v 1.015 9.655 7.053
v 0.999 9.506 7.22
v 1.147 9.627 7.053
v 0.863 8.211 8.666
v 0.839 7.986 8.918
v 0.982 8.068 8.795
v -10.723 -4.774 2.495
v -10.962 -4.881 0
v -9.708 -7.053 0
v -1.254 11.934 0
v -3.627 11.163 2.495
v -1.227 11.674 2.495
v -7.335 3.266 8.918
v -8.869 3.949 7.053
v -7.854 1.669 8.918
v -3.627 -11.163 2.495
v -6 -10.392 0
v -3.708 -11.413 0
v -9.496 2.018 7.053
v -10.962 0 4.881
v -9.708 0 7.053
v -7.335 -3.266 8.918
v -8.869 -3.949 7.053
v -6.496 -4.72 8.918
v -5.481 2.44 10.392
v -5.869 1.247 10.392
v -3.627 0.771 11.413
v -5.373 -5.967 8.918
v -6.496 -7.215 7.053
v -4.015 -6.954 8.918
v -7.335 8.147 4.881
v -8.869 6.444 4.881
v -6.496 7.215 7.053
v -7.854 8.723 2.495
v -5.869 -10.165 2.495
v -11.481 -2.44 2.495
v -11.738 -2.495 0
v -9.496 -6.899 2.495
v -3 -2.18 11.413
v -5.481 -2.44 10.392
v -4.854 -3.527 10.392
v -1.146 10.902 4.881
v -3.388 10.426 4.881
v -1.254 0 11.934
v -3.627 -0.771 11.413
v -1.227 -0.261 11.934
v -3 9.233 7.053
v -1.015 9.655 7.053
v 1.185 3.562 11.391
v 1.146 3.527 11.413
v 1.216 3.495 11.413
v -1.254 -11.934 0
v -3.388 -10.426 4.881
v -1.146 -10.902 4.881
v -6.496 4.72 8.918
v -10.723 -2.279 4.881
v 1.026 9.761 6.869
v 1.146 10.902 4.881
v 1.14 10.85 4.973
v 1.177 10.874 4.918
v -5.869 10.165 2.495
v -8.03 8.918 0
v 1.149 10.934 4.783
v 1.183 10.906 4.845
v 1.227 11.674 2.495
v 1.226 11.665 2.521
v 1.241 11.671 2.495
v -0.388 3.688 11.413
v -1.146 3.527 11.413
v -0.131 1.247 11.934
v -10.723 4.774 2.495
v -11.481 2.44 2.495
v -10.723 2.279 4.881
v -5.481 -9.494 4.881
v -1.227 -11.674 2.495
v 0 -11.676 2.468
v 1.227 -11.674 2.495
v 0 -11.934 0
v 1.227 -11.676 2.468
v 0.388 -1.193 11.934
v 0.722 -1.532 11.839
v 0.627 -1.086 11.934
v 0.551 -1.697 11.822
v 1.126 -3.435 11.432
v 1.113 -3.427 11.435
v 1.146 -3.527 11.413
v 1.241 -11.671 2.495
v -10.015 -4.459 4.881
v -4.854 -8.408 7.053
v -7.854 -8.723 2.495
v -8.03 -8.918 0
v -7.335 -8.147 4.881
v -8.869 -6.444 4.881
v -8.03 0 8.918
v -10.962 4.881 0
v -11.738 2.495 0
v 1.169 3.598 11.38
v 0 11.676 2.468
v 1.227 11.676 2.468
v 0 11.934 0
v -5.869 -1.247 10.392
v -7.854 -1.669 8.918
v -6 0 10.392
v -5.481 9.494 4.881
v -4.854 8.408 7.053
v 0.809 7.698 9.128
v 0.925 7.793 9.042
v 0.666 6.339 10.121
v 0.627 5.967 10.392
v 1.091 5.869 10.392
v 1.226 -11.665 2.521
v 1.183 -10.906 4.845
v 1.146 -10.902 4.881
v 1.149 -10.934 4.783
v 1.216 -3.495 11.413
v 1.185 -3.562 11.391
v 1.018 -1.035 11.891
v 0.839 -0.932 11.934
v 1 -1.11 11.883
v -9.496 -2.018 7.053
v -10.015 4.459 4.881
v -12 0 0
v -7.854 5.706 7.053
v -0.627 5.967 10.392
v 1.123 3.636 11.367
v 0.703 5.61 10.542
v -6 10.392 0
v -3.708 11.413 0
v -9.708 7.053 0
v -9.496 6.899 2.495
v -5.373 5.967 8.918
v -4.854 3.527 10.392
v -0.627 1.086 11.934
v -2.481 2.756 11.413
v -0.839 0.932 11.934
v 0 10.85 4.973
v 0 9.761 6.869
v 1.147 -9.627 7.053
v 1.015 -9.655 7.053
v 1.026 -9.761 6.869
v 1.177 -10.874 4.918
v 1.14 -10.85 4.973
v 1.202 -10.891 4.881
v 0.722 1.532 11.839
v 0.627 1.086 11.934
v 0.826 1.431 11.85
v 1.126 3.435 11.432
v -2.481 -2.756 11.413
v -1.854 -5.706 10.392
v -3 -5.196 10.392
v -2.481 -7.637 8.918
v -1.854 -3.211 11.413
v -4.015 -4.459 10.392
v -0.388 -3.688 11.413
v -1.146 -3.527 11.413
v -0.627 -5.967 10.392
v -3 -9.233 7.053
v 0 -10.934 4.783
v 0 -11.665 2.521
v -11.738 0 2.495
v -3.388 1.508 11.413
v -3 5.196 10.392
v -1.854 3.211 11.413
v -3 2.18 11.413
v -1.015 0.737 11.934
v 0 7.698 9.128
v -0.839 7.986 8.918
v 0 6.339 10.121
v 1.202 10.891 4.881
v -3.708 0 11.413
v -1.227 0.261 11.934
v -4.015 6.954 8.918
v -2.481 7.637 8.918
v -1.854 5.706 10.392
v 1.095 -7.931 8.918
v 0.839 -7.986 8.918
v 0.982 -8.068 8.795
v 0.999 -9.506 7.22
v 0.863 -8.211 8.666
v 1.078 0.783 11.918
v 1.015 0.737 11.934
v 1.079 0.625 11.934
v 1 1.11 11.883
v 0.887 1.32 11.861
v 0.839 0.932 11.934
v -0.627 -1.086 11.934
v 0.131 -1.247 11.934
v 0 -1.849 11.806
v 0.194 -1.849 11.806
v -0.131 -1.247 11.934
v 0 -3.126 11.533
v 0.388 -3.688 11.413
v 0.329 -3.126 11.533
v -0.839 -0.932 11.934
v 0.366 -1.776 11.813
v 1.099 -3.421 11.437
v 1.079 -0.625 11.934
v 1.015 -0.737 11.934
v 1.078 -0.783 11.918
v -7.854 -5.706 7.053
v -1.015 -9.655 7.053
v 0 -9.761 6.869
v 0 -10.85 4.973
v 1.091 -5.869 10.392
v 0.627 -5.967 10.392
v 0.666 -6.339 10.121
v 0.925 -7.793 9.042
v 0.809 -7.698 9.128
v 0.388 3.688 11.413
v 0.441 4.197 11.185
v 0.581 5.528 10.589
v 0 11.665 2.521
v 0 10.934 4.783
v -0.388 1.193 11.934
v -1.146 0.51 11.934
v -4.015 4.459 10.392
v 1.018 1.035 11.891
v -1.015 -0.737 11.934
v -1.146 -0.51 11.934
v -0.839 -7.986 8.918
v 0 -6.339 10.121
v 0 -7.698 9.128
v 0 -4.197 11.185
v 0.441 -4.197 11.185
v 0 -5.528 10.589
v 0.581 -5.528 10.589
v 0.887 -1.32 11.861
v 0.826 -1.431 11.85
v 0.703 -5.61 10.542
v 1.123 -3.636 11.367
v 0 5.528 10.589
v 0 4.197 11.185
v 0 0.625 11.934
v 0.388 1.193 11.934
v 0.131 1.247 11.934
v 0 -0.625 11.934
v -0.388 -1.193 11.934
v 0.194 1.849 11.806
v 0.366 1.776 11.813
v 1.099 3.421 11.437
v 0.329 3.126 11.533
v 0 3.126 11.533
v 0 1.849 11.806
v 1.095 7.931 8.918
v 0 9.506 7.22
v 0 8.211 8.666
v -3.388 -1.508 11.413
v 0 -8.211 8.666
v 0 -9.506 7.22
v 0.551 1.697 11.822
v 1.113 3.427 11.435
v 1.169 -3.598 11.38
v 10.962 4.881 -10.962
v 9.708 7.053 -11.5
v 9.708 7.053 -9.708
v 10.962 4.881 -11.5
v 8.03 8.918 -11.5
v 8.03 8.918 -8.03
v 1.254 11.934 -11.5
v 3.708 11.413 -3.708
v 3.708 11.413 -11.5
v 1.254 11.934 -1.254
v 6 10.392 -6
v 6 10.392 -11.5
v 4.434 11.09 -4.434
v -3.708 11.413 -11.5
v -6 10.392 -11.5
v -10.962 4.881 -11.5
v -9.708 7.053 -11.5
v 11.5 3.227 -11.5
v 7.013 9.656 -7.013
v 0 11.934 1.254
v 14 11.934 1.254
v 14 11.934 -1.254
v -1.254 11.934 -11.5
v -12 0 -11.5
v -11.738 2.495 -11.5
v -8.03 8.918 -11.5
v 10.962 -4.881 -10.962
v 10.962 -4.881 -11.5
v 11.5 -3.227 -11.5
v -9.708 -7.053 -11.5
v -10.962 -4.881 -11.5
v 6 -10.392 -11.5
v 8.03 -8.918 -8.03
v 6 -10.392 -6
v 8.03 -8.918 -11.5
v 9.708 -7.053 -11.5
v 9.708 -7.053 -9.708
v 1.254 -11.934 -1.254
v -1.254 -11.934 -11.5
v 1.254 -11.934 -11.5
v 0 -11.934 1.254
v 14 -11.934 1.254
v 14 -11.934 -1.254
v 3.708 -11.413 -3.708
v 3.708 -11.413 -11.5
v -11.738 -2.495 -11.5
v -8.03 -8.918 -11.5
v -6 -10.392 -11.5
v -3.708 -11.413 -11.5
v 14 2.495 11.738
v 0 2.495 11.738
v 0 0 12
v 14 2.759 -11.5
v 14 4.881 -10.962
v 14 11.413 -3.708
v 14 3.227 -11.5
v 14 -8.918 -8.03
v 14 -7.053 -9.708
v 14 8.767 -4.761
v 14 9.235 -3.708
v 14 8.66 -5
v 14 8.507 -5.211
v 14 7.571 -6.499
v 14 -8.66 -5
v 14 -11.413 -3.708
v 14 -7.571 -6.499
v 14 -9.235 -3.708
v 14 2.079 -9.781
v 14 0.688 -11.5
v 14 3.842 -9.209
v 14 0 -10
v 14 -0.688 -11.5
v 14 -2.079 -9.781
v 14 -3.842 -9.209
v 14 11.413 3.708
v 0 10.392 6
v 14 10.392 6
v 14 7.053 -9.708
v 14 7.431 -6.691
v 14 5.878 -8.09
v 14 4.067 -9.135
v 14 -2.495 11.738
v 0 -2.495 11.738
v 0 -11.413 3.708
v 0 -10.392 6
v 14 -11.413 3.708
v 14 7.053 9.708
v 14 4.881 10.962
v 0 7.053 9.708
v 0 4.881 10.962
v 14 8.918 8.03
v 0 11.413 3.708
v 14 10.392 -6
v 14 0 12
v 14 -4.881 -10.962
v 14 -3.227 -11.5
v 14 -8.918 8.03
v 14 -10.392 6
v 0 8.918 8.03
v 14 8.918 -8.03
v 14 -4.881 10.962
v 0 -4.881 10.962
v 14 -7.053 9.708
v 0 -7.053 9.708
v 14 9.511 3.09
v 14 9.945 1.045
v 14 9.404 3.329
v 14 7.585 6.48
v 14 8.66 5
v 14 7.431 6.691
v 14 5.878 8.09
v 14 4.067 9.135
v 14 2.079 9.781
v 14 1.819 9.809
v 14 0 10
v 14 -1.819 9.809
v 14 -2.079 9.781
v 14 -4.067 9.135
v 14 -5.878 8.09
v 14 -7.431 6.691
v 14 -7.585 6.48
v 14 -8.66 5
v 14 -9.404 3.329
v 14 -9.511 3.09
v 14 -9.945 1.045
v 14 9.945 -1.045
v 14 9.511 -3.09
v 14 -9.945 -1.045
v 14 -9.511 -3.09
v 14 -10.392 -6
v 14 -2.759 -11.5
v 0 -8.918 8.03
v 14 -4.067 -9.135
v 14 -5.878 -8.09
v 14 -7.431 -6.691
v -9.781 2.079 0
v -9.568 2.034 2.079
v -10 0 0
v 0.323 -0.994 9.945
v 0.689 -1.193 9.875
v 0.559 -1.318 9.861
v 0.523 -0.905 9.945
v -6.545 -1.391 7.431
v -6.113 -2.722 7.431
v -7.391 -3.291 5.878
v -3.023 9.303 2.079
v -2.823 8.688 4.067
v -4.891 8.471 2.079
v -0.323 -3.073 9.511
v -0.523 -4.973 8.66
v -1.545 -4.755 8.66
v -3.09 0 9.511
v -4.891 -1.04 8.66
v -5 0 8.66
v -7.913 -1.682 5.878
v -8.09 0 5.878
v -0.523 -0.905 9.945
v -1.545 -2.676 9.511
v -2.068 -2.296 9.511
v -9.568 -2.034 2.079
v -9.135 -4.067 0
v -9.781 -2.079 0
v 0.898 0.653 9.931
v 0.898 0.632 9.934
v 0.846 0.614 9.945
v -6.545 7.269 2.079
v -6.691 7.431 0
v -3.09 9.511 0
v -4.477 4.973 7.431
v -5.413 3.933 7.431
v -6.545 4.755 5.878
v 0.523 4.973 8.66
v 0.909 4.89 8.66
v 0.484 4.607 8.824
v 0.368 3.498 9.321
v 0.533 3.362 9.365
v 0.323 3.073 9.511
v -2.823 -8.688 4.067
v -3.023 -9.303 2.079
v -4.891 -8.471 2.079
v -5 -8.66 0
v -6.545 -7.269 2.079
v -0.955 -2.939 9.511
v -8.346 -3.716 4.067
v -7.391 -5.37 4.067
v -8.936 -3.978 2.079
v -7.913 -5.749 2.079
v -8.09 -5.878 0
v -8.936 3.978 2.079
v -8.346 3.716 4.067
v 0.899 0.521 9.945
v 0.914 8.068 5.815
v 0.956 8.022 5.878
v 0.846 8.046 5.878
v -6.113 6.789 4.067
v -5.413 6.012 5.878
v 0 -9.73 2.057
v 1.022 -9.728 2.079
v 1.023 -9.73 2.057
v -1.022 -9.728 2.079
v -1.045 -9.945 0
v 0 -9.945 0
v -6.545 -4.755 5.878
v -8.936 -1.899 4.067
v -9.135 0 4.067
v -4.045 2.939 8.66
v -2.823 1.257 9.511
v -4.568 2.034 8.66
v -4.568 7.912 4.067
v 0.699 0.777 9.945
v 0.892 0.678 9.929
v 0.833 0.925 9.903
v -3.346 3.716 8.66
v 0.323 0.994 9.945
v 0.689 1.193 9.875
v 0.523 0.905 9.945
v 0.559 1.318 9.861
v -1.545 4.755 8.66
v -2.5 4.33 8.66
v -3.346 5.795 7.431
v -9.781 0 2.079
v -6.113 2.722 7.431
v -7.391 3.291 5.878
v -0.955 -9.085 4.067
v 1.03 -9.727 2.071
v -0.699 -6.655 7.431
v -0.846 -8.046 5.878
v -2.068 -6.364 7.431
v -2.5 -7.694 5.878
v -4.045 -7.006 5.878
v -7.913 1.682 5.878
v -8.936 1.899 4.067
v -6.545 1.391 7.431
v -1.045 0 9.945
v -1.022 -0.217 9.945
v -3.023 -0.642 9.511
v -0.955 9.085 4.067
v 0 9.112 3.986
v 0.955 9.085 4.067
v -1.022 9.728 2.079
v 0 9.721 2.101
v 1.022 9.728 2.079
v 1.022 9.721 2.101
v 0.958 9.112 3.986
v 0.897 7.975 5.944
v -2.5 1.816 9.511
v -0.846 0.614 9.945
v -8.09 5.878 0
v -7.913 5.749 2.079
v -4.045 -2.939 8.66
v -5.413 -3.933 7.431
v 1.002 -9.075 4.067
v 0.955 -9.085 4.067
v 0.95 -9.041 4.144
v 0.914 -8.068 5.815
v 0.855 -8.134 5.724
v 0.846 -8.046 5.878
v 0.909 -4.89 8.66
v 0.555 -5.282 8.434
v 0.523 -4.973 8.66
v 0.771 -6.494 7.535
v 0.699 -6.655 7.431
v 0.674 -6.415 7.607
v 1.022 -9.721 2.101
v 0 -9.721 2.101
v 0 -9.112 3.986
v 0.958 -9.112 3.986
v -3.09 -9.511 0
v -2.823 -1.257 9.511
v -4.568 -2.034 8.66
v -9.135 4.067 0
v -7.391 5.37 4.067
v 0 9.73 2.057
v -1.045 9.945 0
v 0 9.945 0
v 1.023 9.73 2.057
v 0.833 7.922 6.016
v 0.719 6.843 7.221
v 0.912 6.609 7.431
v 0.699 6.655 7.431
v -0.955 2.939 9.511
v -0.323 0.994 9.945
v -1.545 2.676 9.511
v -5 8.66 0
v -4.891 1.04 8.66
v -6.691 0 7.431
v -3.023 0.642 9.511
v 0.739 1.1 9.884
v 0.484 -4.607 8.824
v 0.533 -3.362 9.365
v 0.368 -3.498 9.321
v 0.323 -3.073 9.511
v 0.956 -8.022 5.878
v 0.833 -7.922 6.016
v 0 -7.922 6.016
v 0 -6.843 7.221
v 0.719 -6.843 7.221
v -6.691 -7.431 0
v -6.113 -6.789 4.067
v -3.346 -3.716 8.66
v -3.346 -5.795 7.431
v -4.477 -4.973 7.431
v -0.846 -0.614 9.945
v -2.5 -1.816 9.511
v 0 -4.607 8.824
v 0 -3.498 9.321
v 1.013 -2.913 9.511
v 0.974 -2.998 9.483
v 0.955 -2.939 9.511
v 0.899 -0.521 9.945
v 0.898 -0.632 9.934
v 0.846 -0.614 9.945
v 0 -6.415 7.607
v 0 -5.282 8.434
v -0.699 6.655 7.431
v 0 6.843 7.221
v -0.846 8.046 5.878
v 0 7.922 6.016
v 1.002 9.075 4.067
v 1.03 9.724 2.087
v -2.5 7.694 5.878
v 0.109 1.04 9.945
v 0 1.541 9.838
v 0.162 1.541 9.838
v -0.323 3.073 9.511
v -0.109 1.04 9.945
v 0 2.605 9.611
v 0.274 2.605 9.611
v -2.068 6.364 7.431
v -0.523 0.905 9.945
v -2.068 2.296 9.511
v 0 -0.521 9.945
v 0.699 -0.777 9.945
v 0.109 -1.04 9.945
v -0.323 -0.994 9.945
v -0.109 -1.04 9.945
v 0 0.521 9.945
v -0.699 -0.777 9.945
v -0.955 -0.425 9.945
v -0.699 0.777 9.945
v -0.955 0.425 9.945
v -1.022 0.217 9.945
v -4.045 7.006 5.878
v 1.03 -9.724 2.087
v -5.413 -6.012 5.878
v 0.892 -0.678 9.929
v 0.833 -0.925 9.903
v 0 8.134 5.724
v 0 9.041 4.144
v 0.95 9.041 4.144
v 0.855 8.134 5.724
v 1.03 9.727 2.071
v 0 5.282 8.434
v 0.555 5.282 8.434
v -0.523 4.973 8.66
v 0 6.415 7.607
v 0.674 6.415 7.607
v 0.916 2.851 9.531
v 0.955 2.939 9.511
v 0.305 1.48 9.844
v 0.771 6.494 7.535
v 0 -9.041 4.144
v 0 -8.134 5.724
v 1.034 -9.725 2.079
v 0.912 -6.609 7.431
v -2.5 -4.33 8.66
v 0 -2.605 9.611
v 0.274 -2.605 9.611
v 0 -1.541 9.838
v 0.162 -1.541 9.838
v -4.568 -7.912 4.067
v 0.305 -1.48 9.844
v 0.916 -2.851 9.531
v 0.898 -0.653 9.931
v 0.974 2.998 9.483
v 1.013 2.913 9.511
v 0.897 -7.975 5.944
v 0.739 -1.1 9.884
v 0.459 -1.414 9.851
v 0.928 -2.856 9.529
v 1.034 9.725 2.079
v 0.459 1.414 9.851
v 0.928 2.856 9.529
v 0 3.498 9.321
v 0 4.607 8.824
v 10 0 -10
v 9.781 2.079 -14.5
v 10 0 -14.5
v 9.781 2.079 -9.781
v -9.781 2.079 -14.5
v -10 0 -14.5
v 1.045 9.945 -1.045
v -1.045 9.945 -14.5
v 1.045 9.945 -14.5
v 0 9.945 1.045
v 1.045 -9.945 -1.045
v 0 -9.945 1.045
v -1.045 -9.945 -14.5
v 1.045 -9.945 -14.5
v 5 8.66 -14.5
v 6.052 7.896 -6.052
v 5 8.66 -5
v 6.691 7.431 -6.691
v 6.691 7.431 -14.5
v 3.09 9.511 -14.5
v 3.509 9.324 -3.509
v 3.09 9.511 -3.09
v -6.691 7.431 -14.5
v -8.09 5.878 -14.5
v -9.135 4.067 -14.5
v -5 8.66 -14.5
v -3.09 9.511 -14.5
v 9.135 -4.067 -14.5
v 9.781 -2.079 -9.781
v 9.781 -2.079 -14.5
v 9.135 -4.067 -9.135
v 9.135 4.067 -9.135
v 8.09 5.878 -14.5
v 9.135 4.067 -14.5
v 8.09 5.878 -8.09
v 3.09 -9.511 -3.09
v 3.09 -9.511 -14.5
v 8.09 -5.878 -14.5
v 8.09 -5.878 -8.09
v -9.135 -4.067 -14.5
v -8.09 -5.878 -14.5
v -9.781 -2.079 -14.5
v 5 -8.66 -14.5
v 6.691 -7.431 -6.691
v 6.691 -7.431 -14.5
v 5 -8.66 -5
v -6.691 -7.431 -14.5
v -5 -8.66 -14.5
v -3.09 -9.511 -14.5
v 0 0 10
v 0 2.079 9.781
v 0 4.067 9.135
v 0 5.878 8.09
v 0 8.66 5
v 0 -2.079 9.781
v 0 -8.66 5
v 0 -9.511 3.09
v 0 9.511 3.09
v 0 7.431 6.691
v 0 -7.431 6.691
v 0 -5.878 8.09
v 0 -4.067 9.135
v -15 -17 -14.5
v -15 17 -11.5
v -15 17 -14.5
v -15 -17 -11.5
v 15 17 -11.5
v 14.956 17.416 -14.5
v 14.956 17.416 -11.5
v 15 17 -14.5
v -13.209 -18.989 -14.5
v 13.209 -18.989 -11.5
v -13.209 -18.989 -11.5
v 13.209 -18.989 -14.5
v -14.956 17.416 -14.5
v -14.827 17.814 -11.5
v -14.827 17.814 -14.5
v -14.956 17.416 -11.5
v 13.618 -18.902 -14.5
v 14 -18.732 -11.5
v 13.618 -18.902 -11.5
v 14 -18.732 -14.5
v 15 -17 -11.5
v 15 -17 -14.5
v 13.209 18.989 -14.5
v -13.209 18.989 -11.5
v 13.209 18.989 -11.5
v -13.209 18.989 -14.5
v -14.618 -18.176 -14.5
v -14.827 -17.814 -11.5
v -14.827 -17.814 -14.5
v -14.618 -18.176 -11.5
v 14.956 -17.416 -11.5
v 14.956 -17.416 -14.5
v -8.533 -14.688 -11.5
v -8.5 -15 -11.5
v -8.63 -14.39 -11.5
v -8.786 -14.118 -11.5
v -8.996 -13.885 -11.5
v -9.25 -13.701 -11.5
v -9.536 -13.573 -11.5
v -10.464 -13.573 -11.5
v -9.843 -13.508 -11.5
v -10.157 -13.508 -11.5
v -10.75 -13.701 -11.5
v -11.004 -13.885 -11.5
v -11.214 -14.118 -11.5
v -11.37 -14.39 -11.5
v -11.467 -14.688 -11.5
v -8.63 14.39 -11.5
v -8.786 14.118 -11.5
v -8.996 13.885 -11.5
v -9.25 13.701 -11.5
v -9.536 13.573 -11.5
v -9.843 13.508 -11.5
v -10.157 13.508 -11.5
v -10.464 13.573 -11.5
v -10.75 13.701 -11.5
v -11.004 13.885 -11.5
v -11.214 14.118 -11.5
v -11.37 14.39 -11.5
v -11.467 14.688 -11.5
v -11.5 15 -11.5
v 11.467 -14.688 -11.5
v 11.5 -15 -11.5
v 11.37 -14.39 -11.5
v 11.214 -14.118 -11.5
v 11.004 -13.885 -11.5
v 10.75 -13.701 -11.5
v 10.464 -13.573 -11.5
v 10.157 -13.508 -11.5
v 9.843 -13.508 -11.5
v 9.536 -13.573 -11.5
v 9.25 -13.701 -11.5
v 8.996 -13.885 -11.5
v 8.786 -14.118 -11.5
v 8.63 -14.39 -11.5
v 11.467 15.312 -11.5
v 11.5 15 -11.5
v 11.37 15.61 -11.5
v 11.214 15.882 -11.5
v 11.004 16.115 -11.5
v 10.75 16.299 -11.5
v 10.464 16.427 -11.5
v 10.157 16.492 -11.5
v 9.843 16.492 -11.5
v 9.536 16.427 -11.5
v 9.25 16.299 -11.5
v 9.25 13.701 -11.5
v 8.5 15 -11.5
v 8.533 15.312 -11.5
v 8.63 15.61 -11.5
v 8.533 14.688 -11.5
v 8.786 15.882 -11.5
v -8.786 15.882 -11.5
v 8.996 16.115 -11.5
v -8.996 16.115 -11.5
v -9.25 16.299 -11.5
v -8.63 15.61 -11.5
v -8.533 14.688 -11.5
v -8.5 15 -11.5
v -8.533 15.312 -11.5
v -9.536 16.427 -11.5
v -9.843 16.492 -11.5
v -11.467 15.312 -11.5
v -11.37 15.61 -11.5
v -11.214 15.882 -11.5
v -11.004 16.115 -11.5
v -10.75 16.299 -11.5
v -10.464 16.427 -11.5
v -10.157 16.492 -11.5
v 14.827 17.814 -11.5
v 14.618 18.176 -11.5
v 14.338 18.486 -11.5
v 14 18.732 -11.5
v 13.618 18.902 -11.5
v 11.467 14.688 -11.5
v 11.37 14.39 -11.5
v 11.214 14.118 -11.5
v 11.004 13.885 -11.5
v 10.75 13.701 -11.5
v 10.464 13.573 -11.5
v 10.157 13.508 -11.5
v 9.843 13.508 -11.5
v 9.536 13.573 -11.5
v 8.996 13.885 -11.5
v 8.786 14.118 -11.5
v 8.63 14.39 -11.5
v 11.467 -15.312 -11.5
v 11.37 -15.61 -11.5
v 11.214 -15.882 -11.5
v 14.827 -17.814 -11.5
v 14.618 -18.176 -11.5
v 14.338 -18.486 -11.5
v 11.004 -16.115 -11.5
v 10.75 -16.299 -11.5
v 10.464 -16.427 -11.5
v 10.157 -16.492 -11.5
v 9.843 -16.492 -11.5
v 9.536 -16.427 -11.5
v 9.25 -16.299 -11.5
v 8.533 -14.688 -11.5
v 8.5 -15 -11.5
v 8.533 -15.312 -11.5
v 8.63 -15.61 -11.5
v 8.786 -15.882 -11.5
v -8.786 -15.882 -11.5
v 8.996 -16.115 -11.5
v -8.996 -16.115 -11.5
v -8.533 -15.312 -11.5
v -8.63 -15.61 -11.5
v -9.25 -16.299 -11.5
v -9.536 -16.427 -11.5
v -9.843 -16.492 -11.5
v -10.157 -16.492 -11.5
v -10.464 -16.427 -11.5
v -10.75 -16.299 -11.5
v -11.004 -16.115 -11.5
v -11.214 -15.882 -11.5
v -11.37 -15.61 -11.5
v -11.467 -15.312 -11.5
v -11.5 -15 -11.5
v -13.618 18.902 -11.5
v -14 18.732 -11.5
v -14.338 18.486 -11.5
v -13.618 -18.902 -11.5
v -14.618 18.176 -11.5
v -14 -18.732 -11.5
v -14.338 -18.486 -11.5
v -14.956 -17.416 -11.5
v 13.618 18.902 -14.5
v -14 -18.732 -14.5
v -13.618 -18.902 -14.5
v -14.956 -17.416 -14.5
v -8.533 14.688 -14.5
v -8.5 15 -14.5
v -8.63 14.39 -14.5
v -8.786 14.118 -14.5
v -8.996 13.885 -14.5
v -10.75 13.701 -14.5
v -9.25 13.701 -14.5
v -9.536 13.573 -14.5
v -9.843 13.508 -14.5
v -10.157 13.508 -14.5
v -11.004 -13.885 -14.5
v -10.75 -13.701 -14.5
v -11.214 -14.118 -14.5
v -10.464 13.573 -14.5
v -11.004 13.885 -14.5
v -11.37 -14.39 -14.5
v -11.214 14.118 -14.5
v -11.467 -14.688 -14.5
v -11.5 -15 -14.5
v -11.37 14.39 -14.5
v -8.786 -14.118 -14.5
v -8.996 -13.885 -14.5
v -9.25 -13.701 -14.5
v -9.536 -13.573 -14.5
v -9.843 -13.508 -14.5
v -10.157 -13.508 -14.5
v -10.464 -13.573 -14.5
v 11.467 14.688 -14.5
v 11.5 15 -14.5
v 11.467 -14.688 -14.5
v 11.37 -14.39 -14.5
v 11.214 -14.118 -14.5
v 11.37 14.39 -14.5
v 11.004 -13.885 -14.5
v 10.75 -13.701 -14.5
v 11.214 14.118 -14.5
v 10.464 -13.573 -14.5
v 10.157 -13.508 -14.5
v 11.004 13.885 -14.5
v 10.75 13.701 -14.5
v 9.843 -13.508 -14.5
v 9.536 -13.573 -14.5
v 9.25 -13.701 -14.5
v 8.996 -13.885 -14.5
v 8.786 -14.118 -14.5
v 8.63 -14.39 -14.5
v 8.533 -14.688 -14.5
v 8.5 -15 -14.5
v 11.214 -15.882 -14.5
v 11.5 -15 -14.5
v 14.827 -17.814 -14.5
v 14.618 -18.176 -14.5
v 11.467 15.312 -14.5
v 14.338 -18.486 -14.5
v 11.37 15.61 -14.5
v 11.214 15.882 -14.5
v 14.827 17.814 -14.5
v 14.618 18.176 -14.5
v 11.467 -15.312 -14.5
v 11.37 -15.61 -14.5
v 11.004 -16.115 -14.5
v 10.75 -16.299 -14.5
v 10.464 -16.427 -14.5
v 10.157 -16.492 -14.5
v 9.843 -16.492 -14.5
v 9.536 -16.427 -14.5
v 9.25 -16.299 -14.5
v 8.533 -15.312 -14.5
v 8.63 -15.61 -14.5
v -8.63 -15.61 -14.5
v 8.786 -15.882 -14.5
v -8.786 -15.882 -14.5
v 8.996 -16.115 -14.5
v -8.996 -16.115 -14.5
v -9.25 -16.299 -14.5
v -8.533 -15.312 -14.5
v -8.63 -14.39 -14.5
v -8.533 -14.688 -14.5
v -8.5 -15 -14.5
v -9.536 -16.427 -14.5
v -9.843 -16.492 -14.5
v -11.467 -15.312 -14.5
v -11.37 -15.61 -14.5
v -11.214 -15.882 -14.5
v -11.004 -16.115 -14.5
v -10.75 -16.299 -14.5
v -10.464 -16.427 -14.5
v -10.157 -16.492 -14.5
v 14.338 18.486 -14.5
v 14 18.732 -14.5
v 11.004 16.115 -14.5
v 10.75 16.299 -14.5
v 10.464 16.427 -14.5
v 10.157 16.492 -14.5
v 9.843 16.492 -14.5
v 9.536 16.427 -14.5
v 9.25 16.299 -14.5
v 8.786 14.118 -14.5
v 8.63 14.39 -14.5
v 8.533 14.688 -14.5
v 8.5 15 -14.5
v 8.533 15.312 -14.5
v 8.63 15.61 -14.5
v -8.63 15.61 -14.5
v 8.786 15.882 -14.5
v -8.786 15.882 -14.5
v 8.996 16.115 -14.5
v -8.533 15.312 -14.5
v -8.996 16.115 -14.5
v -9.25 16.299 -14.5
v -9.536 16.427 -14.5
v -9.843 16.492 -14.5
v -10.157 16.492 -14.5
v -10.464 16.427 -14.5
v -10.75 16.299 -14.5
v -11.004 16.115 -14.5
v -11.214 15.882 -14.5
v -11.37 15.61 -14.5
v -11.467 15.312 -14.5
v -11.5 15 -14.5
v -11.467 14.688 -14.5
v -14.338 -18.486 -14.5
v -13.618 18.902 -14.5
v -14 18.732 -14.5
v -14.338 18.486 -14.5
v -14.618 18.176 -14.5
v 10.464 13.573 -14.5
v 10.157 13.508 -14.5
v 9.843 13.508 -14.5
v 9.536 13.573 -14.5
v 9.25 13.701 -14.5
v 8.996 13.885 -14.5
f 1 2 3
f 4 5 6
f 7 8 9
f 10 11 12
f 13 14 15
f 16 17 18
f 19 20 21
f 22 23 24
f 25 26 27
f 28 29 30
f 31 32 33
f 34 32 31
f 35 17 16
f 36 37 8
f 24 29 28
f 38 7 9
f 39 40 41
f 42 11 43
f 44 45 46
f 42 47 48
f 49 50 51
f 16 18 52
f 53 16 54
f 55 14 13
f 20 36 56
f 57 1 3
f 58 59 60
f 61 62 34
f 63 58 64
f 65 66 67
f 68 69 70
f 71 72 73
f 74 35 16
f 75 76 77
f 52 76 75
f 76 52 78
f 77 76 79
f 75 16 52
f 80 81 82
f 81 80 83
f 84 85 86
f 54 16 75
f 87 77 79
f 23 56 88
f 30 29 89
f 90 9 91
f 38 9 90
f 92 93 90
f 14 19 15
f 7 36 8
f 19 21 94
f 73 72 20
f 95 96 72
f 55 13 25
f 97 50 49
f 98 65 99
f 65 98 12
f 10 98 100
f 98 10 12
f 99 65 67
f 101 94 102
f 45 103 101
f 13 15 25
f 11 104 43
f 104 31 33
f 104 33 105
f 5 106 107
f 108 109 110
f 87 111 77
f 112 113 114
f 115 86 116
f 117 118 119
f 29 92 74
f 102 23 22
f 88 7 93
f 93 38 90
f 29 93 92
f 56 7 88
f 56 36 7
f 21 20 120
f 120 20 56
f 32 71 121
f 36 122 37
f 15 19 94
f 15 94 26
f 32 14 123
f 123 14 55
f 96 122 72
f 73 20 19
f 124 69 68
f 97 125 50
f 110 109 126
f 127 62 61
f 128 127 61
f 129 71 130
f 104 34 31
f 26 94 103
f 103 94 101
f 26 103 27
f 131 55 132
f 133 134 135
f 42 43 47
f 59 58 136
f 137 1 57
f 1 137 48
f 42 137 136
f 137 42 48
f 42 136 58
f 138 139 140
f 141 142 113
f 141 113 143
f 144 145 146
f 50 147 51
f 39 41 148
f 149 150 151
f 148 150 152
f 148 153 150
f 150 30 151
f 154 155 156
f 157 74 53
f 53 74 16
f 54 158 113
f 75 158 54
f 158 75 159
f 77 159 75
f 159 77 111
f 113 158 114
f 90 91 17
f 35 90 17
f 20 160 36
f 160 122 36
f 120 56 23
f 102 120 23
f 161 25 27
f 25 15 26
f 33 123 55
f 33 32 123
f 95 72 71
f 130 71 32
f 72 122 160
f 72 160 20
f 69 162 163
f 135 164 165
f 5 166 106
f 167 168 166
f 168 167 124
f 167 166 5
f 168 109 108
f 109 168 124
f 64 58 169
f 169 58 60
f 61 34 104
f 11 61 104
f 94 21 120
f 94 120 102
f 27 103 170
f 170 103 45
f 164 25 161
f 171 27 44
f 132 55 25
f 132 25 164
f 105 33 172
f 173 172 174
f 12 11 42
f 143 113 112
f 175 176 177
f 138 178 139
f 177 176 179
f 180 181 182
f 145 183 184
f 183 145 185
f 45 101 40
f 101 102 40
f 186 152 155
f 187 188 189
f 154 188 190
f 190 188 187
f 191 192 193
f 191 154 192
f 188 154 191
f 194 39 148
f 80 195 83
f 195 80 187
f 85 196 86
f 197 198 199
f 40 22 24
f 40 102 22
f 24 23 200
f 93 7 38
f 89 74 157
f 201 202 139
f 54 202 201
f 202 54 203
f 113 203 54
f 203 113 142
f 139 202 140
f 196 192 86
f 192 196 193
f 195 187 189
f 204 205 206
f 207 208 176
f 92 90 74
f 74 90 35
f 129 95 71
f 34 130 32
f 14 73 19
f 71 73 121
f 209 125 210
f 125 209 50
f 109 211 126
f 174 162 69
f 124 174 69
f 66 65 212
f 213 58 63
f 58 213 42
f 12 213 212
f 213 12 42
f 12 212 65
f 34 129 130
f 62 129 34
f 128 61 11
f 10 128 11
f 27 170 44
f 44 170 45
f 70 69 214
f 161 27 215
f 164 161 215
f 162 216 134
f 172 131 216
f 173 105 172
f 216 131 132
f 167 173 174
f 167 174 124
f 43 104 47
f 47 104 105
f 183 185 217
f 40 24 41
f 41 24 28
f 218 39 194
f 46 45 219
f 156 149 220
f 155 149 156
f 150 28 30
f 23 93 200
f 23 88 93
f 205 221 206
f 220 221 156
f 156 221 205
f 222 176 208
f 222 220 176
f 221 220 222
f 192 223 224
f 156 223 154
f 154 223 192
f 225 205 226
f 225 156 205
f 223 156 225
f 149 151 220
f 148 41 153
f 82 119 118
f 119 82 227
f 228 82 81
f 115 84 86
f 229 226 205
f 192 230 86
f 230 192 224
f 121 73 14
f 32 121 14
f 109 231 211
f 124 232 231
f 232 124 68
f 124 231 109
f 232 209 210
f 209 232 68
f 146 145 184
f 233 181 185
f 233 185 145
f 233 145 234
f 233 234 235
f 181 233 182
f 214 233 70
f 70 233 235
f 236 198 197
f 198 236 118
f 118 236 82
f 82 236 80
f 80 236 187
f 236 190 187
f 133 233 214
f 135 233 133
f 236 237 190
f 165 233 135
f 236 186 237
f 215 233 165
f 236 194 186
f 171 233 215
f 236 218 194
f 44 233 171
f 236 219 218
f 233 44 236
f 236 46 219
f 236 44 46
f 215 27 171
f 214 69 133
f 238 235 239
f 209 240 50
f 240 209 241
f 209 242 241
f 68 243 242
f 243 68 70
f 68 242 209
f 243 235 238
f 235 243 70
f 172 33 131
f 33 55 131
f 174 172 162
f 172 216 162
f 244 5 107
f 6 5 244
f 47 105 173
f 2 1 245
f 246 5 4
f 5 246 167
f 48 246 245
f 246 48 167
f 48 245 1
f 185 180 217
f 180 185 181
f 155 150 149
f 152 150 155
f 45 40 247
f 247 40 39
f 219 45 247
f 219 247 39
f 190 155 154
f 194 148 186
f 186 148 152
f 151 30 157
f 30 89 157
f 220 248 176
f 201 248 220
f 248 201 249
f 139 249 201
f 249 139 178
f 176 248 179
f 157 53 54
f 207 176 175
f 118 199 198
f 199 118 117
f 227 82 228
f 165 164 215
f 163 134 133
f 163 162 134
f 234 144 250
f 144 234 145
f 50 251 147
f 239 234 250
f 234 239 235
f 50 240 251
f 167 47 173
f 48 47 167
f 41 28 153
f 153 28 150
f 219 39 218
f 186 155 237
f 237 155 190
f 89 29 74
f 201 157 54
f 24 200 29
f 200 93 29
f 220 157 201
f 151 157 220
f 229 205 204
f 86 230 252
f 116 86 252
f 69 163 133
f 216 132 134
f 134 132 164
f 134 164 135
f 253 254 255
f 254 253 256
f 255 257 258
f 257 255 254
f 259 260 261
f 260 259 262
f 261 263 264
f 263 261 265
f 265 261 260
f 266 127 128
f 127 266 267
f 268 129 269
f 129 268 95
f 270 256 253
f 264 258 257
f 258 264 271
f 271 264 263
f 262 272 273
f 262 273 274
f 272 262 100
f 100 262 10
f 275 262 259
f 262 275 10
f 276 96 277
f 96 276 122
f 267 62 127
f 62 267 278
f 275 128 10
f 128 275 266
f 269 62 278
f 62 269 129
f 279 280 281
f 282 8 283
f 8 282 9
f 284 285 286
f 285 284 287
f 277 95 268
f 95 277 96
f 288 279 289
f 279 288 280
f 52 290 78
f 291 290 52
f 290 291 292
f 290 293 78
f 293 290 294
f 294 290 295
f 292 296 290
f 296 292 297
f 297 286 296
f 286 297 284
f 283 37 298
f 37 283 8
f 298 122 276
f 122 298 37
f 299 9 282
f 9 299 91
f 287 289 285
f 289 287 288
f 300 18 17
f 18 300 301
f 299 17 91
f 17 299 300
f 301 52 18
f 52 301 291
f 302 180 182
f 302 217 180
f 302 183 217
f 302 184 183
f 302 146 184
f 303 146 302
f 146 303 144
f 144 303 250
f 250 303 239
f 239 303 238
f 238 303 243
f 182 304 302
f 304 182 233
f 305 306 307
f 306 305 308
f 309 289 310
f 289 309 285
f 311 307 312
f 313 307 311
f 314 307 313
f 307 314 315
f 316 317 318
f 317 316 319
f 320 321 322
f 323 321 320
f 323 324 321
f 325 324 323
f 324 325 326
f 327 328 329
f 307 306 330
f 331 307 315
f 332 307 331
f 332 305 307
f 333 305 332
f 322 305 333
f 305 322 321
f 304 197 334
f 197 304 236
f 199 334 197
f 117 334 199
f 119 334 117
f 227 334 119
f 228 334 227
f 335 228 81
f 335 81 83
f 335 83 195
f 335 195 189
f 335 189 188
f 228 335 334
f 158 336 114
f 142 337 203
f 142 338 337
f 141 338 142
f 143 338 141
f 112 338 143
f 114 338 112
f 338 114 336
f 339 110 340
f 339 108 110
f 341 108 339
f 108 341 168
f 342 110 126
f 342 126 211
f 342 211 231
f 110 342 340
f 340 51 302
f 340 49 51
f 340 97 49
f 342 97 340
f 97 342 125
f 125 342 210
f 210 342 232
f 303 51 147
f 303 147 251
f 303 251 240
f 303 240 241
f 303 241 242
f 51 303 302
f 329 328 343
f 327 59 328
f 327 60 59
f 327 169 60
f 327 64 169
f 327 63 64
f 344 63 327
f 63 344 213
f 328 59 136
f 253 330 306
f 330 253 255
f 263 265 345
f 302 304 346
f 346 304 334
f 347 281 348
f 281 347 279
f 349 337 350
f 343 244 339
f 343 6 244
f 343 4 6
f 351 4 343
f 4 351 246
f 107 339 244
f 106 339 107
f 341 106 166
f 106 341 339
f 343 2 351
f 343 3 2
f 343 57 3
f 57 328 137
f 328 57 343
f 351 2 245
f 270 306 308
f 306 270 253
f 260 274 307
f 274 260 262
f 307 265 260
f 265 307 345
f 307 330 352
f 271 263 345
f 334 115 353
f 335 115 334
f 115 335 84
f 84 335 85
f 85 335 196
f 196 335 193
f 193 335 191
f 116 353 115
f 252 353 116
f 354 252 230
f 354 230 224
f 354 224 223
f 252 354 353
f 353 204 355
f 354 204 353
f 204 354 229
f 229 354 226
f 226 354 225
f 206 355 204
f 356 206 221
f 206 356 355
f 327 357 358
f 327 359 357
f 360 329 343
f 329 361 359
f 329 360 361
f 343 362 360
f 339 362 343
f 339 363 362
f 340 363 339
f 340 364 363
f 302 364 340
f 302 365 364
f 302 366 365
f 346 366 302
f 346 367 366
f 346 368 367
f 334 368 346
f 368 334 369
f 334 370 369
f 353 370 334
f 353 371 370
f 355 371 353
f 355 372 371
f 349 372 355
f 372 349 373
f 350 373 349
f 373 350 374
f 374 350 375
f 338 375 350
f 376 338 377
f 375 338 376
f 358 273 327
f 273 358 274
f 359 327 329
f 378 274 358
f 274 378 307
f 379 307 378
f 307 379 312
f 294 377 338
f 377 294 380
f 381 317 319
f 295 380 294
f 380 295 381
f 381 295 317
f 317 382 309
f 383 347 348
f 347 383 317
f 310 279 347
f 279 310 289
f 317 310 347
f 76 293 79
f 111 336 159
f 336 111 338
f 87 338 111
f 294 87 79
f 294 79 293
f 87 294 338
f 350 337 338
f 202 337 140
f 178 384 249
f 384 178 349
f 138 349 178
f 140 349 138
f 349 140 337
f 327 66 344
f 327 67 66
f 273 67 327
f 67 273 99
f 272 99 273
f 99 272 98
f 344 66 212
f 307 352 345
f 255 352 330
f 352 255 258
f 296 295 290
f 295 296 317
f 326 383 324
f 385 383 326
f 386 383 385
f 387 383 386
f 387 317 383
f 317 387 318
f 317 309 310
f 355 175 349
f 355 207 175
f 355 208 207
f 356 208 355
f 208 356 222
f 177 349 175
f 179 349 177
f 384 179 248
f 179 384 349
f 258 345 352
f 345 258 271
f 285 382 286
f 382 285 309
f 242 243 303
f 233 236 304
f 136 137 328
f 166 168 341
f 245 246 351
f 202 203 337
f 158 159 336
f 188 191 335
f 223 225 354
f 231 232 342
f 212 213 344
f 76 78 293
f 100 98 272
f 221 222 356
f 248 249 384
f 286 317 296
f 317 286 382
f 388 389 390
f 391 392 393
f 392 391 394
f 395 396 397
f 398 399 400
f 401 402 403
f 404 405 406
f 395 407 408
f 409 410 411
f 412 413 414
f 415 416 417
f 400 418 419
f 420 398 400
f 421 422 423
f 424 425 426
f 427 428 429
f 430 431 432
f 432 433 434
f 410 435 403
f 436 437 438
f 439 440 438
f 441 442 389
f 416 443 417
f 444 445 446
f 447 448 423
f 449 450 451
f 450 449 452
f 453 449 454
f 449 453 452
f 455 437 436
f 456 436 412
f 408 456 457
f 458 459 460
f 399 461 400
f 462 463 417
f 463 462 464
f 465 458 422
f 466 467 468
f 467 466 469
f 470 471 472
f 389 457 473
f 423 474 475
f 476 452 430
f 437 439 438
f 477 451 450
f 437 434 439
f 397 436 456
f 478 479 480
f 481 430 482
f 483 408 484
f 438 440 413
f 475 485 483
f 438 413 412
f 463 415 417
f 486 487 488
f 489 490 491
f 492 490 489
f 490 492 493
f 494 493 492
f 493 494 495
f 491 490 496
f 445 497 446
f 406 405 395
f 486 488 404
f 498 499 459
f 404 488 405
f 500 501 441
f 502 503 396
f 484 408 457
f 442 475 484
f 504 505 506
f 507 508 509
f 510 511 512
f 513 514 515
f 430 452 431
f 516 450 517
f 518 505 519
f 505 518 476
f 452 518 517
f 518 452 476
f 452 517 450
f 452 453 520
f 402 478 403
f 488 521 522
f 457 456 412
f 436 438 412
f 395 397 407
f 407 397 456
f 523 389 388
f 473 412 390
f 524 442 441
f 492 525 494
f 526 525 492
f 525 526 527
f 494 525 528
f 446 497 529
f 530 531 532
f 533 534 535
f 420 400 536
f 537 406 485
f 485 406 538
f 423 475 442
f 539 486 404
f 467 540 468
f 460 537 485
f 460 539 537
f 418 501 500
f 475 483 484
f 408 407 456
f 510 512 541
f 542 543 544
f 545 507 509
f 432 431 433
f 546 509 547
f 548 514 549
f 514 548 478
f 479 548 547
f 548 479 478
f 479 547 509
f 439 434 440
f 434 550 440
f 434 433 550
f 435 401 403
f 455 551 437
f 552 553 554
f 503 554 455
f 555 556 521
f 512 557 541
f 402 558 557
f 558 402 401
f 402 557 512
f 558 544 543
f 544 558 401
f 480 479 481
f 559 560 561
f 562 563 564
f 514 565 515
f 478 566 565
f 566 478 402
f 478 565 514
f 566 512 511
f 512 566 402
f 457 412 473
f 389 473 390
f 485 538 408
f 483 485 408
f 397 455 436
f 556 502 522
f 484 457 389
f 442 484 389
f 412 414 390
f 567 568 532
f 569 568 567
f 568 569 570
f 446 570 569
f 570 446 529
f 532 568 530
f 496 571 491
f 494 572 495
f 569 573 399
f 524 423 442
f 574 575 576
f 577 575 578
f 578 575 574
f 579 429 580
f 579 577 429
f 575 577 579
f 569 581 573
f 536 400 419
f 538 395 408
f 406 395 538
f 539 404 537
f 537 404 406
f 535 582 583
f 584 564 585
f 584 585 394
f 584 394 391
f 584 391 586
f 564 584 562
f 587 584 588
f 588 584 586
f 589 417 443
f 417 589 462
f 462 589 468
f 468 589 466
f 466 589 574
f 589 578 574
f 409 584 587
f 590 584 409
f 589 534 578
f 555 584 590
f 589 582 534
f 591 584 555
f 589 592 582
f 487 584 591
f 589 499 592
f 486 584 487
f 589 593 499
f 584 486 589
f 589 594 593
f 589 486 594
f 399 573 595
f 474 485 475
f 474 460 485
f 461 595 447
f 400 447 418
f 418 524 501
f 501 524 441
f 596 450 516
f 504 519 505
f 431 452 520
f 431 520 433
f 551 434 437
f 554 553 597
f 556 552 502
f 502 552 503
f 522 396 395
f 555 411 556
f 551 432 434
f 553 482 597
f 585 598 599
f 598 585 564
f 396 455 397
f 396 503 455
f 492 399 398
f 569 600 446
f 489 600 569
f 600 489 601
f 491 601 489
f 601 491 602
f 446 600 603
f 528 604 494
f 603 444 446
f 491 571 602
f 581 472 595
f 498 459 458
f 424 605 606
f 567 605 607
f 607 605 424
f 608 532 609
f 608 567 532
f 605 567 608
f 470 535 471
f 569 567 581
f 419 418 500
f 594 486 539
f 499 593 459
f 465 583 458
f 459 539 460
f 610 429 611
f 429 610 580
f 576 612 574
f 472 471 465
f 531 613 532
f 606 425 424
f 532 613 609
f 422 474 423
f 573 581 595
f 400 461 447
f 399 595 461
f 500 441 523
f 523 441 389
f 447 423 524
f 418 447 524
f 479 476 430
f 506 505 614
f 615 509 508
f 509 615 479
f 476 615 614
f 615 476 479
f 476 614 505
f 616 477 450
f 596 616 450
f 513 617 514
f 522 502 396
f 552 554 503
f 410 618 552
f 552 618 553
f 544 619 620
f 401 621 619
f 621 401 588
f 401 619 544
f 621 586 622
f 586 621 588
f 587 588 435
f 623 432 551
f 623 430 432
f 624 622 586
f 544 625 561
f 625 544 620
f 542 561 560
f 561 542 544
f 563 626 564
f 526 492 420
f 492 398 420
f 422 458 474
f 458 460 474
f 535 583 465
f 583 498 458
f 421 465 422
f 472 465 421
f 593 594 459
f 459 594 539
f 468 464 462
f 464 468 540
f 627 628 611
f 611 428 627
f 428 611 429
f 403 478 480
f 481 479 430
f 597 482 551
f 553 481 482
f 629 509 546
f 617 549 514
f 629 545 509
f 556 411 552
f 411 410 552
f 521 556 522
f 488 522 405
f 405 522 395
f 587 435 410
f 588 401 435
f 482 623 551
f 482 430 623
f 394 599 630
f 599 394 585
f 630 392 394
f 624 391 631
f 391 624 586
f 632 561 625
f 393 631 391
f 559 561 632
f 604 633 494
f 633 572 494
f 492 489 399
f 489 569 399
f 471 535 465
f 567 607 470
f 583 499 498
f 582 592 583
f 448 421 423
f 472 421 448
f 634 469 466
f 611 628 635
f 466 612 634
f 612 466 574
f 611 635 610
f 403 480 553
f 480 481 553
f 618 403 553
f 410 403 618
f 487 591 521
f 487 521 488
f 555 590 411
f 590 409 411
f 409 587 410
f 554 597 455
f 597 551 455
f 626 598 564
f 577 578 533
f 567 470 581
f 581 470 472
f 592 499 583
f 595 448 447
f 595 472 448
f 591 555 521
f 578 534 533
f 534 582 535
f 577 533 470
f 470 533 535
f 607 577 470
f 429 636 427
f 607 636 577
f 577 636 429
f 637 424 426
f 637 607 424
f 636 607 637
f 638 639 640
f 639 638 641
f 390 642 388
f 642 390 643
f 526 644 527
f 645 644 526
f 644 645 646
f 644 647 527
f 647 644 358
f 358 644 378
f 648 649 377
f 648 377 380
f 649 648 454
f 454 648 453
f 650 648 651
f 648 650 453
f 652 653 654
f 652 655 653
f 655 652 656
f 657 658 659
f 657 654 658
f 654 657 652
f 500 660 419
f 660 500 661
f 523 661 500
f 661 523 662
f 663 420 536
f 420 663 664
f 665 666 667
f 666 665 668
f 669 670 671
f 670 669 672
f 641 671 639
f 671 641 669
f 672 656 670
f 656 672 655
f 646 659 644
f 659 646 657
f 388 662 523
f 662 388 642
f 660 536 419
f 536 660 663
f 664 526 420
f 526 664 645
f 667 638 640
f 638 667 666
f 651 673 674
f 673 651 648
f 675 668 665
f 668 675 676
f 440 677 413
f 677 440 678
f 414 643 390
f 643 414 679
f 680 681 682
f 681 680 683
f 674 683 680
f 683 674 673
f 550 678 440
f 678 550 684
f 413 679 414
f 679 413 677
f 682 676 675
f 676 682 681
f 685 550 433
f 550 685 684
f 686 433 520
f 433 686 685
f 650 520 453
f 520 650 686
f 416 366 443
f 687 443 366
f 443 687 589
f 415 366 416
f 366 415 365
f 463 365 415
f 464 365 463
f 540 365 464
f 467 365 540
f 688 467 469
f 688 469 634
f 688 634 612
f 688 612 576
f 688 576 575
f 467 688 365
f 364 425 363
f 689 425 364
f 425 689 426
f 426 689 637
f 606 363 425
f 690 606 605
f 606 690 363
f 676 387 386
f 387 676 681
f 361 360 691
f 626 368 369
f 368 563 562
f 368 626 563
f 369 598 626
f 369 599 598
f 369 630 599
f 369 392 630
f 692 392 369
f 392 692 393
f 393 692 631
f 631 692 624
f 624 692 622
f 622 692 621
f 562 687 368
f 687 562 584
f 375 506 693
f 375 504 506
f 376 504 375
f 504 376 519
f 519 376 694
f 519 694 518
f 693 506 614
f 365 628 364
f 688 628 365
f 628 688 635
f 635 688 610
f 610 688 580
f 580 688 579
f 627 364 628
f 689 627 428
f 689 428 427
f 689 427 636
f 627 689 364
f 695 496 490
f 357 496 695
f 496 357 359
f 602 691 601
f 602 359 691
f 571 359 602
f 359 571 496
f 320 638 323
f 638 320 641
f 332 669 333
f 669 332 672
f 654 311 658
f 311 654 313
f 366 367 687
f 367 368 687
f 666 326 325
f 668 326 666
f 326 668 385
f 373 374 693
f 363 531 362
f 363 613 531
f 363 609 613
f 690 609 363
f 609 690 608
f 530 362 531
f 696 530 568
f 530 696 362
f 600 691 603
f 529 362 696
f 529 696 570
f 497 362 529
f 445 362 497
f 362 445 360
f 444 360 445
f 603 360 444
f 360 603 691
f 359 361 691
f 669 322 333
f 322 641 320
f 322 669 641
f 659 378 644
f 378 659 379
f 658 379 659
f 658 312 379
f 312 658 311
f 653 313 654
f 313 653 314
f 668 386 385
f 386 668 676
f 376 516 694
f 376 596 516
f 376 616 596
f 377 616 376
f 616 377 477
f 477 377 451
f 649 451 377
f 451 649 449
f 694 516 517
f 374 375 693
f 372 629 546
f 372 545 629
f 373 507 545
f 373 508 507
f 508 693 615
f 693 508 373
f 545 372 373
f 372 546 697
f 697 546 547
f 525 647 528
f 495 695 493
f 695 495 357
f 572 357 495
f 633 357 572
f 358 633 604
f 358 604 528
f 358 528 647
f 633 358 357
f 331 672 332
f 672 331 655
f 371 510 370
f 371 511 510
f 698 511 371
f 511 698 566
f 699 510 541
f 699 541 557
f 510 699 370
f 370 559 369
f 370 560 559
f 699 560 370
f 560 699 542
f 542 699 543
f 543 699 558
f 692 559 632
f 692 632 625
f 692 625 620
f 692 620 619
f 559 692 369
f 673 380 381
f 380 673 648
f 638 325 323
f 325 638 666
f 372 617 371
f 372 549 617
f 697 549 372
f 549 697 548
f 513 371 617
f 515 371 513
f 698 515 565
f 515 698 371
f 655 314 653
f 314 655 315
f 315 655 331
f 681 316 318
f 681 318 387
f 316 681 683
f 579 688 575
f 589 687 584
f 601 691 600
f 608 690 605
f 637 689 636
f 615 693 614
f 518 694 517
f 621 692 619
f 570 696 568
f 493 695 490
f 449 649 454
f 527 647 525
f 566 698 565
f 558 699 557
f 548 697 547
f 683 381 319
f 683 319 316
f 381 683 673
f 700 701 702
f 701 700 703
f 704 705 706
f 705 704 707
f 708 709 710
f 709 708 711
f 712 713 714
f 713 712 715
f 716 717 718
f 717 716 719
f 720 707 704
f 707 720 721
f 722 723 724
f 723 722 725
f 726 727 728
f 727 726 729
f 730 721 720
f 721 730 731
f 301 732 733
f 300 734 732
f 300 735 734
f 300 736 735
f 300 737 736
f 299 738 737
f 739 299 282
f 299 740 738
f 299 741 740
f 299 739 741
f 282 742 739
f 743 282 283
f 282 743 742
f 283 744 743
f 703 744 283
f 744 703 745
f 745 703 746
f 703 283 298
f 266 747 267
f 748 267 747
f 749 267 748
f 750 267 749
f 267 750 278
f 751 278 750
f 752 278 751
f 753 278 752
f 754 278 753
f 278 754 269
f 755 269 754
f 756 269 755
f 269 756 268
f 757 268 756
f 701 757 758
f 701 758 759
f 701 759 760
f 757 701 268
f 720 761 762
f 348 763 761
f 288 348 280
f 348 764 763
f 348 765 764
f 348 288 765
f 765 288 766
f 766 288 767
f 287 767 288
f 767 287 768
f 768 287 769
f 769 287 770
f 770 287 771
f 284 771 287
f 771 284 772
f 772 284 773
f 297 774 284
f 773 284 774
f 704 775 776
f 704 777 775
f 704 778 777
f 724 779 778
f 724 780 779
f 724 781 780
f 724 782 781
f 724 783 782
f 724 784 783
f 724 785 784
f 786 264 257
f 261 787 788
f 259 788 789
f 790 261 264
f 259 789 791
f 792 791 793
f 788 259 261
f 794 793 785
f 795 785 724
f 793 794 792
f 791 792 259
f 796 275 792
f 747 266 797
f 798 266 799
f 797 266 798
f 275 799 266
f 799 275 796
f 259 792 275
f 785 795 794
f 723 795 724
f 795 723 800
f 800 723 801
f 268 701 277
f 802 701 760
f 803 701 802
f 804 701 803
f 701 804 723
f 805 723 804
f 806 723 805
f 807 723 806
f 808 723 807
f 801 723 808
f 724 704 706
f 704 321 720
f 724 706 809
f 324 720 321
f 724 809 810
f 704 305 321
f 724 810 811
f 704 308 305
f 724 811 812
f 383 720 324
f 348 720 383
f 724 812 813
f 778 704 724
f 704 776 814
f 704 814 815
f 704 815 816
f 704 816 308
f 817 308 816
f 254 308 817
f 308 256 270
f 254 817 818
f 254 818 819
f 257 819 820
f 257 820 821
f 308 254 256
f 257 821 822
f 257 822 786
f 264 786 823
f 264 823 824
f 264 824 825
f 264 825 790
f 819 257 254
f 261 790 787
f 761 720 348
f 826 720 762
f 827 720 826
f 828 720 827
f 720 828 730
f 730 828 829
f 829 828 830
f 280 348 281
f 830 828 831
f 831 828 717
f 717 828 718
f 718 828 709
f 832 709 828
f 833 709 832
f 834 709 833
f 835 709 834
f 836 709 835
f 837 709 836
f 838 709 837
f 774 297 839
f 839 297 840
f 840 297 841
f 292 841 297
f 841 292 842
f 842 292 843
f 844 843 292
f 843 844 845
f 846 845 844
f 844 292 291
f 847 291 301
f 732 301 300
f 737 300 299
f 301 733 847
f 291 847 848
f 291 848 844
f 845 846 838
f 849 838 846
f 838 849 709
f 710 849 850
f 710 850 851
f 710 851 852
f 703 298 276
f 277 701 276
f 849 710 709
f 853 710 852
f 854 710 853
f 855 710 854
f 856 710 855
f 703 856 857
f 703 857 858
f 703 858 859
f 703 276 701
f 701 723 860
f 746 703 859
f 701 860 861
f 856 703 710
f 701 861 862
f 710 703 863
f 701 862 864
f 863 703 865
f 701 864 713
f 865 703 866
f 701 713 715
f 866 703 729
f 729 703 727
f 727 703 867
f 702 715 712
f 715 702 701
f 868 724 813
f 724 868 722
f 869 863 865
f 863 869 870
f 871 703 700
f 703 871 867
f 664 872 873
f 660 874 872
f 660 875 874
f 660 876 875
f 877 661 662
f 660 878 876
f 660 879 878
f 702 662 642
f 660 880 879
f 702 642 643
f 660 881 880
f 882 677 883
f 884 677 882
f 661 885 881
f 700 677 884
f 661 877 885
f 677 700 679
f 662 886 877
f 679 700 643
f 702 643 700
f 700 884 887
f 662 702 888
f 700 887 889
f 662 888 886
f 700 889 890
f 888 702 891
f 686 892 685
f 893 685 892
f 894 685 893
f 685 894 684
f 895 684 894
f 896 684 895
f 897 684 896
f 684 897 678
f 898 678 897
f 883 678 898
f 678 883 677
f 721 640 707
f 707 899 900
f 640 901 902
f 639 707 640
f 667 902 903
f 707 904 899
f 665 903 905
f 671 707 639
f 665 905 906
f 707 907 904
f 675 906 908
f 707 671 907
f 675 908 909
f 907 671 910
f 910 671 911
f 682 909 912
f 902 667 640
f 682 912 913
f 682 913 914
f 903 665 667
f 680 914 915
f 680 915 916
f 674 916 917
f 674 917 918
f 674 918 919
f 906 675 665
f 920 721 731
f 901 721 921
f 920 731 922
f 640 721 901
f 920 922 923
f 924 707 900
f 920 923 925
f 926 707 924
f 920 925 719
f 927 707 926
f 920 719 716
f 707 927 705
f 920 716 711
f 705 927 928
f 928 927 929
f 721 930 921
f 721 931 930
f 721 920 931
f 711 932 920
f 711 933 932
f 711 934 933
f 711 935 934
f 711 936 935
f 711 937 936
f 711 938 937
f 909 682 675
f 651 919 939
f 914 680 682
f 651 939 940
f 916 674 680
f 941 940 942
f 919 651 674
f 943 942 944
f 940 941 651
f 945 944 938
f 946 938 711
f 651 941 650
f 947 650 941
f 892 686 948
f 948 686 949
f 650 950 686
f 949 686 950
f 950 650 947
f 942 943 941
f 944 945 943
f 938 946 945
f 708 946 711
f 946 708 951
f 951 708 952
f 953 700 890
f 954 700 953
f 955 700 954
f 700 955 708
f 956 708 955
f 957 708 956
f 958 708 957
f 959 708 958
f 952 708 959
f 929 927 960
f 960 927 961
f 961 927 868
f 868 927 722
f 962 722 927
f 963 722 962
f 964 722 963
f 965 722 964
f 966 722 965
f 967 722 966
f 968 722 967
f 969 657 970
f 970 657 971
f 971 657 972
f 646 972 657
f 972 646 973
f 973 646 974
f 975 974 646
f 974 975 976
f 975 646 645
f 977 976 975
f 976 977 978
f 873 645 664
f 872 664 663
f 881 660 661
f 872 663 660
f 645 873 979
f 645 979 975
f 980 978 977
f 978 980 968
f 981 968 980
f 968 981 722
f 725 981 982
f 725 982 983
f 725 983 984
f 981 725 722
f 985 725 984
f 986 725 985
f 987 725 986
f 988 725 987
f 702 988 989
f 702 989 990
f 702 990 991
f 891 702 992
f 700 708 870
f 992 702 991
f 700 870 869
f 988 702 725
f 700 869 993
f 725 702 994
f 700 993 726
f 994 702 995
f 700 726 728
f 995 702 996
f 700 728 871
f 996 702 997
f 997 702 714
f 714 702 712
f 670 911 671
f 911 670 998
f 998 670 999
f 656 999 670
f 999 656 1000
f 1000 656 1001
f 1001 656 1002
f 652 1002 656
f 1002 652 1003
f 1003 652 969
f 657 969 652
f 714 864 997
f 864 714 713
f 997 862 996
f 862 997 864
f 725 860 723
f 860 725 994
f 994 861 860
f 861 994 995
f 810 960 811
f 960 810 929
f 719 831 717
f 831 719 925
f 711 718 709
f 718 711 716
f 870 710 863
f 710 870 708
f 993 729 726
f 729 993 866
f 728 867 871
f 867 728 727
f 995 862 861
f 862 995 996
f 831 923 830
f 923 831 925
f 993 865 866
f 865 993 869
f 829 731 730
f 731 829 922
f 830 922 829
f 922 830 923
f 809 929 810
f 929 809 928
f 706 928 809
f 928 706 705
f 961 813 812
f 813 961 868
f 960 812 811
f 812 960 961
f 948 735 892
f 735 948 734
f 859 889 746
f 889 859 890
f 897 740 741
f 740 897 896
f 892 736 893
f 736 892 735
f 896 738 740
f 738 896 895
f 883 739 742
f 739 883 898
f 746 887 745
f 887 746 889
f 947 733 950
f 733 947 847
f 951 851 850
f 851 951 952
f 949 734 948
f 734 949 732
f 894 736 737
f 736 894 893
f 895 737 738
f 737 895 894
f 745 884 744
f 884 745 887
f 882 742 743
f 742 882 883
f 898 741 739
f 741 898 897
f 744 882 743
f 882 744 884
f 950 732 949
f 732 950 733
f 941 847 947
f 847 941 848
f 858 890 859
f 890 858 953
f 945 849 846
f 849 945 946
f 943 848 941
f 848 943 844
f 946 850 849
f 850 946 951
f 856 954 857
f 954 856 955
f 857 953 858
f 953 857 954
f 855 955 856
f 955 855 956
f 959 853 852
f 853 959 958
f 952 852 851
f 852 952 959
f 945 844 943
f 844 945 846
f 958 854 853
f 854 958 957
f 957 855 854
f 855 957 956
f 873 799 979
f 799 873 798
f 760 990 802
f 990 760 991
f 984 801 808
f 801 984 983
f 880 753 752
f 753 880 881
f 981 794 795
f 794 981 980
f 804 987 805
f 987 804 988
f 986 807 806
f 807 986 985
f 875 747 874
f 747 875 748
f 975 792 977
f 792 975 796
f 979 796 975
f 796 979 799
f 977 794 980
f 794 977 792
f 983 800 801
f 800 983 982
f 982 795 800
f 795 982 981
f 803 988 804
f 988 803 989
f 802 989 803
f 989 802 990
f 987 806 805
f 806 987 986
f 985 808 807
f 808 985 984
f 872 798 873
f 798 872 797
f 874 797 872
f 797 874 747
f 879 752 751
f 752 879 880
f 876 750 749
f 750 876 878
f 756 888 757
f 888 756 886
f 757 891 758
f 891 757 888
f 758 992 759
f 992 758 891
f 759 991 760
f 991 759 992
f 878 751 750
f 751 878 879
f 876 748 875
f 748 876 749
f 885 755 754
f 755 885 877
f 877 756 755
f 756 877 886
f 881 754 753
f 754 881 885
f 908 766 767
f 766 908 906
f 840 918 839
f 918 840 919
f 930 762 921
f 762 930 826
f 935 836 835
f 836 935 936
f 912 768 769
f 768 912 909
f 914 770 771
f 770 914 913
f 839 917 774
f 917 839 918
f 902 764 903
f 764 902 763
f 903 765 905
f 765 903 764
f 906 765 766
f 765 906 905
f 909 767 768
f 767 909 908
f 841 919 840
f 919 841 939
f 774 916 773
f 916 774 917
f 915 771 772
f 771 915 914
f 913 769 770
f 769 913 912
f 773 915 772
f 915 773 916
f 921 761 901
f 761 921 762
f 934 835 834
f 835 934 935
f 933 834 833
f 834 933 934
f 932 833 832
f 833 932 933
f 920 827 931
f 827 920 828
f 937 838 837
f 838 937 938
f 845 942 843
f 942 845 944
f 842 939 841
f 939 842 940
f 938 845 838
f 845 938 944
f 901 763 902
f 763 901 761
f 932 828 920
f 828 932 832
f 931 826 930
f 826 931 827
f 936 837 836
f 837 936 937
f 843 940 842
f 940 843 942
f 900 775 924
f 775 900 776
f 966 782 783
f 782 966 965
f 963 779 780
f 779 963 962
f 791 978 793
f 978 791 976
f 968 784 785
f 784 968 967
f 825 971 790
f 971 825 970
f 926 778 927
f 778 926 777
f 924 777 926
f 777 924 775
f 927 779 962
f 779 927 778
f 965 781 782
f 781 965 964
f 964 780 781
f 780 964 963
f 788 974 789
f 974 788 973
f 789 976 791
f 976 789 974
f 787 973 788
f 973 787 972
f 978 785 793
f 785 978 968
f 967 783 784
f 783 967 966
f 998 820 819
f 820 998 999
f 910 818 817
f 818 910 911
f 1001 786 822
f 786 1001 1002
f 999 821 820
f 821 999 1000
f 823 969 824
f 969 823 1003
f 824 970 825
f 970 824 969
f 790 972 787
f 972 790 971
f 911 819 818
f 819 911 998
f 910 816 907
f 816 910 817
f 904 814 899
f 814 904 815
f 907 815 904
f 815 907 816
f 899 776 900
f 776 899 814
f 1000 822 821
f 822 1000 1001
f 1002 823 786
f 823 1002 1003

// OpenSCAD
$fn = 30;

od = 12;
id = 10;
//cylinder(h=10,d=3,center=true);
//rotate([0,10,0]) cylinder(h=10,d=3,center=true);

difference(){
	pipe(od,od+2);
	pipe(id,od+4);
}
difference(){
	translate([0,0,-13]) color("Lime") hull(){
		translate([-13,-17,0])  cylinder(h=3,d=4,center=true);			//
		translate([-13,+17,0])  cylinder(h=3,d=4,center=true);			//
		translate([+13,-17,0])  cylinder(h=3,d=4,center=true);			//
		translate([+13,+17,0])  cylinder(h=3,d=4,center=true);			//
	}
	translate([0,0,-13]) cylinder(h=6,r=id,center=true);
	
	translate([-10,-15,-15])  cylinder(h=16,r=1.5,center=true);			//
	translate([-10,+15,-15])  cylinder(h=16,r=1.5,center=true);			//
	translate([+10,-15,-15])  cylinder(h=16,r=1.5,center=true);			//
	translate([+10,+15,-15])  cylinder(h=16,r=1.5,center=true);			//
}


module pipe(diamoter=1,len=1){
	sphere(r = diamoter, center=true);
	translate([0,0,-len/2]) cylinder(h=len,r=diamoter,center=true);
	rotate([0,-90,0]) translate([0,0,-len/2]) cylinder(h=len,r=diamoter,center=true);
}
